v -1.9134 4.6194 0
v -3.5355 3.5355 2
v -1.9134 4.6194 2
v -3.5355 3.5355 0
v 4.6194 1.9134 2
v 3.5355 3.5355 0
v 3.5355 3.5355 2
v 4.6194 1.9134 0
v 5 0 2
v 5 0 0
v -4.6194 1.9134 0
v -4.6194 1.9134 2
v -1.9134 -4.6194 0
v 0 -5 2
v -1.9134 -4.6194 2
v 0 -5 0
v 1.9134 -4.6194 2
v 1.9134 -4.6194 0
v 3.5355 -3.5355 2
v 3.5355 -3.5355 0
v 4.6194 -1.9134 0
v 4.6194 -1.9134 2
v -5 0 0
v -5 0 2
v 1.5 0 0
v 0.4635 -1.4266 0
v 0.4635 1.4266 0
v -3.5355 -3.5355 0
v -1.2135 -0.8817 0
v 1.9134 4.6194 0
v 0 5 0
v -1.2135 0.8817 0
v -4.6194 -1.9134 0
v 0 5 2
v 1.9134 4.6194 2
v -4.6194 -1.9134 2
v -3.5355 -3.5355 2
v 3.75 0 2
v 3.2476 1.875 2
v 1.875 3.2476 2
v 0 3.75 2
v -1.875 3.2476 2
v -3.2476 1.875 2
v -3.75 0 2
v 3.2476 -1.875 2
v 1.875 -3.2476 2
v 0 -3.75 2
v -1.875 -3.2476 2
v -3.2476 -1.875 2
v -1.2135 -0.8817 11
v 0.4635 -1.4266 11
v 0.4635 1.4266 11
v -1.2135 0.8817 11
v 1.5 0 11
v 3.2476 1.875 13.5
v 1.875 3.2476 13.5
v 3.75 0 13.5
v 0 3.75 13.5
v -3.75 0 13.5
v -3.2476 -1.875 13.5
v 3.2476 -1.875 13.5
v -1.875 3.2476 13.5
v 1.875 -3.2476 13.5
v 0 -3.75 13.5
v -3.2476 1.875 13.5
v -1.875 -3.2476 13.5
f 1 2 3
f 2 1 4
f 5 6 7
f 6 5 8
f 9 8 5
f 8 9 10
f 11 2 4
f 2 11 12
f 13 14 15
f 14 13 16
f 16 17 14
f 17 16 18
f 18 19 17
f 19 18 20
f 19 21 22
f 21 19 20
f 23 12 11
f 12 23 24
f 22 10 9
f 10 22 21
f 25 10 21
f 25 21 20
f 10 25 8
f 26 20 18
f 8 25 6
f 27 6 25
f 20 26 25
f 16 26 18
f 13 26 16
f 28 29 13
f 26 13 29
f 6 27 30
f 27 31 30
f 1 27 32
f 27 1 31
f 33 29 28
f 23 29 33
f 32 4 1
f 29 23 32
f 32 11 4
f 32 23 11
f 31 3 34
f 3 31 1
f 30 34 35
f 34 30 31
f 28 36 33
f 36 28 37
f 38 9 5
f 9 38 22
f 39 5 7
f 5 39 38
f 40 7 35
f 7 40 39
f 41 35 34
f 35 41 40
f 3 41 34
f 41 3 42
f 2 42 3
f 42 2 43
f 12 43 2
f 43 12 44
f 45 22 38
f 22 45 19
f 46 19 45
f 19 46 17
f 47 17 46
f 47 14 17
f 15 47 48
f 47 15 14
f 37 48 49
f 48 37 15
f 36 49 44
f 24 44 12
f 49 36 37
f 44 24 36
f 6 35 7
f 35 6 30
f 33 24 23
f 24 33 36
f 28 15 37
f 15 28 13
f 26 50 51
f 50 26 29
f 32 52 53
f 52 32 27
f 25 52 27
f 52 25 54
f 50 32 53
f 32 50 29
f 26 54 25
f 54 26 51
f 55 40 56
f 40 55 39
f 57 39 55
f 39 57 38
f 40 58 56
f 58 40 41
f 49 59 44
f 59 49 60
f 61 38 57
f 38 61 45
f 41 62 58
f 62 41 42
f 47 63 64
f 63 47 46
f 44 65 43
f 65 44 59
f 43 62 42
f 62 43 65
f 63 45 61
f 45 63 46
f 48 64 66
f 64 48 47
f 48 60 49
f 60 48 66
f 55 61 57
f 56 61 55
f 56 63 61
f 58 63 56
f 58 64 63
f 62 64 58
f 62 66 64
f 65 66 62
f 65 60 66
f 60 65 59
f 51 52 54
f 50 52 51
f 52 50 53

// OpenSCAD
difference() {
    cylinder(2, 5, 5);
    cylinder(9, 1.5, 1.5);
}
translate([0, 0, 2]) {
    difference() {
        cylinder(7+2+2.5, 3.75, 3.75);
        cylinder(9, 1.5, 1.5);
    }
}
